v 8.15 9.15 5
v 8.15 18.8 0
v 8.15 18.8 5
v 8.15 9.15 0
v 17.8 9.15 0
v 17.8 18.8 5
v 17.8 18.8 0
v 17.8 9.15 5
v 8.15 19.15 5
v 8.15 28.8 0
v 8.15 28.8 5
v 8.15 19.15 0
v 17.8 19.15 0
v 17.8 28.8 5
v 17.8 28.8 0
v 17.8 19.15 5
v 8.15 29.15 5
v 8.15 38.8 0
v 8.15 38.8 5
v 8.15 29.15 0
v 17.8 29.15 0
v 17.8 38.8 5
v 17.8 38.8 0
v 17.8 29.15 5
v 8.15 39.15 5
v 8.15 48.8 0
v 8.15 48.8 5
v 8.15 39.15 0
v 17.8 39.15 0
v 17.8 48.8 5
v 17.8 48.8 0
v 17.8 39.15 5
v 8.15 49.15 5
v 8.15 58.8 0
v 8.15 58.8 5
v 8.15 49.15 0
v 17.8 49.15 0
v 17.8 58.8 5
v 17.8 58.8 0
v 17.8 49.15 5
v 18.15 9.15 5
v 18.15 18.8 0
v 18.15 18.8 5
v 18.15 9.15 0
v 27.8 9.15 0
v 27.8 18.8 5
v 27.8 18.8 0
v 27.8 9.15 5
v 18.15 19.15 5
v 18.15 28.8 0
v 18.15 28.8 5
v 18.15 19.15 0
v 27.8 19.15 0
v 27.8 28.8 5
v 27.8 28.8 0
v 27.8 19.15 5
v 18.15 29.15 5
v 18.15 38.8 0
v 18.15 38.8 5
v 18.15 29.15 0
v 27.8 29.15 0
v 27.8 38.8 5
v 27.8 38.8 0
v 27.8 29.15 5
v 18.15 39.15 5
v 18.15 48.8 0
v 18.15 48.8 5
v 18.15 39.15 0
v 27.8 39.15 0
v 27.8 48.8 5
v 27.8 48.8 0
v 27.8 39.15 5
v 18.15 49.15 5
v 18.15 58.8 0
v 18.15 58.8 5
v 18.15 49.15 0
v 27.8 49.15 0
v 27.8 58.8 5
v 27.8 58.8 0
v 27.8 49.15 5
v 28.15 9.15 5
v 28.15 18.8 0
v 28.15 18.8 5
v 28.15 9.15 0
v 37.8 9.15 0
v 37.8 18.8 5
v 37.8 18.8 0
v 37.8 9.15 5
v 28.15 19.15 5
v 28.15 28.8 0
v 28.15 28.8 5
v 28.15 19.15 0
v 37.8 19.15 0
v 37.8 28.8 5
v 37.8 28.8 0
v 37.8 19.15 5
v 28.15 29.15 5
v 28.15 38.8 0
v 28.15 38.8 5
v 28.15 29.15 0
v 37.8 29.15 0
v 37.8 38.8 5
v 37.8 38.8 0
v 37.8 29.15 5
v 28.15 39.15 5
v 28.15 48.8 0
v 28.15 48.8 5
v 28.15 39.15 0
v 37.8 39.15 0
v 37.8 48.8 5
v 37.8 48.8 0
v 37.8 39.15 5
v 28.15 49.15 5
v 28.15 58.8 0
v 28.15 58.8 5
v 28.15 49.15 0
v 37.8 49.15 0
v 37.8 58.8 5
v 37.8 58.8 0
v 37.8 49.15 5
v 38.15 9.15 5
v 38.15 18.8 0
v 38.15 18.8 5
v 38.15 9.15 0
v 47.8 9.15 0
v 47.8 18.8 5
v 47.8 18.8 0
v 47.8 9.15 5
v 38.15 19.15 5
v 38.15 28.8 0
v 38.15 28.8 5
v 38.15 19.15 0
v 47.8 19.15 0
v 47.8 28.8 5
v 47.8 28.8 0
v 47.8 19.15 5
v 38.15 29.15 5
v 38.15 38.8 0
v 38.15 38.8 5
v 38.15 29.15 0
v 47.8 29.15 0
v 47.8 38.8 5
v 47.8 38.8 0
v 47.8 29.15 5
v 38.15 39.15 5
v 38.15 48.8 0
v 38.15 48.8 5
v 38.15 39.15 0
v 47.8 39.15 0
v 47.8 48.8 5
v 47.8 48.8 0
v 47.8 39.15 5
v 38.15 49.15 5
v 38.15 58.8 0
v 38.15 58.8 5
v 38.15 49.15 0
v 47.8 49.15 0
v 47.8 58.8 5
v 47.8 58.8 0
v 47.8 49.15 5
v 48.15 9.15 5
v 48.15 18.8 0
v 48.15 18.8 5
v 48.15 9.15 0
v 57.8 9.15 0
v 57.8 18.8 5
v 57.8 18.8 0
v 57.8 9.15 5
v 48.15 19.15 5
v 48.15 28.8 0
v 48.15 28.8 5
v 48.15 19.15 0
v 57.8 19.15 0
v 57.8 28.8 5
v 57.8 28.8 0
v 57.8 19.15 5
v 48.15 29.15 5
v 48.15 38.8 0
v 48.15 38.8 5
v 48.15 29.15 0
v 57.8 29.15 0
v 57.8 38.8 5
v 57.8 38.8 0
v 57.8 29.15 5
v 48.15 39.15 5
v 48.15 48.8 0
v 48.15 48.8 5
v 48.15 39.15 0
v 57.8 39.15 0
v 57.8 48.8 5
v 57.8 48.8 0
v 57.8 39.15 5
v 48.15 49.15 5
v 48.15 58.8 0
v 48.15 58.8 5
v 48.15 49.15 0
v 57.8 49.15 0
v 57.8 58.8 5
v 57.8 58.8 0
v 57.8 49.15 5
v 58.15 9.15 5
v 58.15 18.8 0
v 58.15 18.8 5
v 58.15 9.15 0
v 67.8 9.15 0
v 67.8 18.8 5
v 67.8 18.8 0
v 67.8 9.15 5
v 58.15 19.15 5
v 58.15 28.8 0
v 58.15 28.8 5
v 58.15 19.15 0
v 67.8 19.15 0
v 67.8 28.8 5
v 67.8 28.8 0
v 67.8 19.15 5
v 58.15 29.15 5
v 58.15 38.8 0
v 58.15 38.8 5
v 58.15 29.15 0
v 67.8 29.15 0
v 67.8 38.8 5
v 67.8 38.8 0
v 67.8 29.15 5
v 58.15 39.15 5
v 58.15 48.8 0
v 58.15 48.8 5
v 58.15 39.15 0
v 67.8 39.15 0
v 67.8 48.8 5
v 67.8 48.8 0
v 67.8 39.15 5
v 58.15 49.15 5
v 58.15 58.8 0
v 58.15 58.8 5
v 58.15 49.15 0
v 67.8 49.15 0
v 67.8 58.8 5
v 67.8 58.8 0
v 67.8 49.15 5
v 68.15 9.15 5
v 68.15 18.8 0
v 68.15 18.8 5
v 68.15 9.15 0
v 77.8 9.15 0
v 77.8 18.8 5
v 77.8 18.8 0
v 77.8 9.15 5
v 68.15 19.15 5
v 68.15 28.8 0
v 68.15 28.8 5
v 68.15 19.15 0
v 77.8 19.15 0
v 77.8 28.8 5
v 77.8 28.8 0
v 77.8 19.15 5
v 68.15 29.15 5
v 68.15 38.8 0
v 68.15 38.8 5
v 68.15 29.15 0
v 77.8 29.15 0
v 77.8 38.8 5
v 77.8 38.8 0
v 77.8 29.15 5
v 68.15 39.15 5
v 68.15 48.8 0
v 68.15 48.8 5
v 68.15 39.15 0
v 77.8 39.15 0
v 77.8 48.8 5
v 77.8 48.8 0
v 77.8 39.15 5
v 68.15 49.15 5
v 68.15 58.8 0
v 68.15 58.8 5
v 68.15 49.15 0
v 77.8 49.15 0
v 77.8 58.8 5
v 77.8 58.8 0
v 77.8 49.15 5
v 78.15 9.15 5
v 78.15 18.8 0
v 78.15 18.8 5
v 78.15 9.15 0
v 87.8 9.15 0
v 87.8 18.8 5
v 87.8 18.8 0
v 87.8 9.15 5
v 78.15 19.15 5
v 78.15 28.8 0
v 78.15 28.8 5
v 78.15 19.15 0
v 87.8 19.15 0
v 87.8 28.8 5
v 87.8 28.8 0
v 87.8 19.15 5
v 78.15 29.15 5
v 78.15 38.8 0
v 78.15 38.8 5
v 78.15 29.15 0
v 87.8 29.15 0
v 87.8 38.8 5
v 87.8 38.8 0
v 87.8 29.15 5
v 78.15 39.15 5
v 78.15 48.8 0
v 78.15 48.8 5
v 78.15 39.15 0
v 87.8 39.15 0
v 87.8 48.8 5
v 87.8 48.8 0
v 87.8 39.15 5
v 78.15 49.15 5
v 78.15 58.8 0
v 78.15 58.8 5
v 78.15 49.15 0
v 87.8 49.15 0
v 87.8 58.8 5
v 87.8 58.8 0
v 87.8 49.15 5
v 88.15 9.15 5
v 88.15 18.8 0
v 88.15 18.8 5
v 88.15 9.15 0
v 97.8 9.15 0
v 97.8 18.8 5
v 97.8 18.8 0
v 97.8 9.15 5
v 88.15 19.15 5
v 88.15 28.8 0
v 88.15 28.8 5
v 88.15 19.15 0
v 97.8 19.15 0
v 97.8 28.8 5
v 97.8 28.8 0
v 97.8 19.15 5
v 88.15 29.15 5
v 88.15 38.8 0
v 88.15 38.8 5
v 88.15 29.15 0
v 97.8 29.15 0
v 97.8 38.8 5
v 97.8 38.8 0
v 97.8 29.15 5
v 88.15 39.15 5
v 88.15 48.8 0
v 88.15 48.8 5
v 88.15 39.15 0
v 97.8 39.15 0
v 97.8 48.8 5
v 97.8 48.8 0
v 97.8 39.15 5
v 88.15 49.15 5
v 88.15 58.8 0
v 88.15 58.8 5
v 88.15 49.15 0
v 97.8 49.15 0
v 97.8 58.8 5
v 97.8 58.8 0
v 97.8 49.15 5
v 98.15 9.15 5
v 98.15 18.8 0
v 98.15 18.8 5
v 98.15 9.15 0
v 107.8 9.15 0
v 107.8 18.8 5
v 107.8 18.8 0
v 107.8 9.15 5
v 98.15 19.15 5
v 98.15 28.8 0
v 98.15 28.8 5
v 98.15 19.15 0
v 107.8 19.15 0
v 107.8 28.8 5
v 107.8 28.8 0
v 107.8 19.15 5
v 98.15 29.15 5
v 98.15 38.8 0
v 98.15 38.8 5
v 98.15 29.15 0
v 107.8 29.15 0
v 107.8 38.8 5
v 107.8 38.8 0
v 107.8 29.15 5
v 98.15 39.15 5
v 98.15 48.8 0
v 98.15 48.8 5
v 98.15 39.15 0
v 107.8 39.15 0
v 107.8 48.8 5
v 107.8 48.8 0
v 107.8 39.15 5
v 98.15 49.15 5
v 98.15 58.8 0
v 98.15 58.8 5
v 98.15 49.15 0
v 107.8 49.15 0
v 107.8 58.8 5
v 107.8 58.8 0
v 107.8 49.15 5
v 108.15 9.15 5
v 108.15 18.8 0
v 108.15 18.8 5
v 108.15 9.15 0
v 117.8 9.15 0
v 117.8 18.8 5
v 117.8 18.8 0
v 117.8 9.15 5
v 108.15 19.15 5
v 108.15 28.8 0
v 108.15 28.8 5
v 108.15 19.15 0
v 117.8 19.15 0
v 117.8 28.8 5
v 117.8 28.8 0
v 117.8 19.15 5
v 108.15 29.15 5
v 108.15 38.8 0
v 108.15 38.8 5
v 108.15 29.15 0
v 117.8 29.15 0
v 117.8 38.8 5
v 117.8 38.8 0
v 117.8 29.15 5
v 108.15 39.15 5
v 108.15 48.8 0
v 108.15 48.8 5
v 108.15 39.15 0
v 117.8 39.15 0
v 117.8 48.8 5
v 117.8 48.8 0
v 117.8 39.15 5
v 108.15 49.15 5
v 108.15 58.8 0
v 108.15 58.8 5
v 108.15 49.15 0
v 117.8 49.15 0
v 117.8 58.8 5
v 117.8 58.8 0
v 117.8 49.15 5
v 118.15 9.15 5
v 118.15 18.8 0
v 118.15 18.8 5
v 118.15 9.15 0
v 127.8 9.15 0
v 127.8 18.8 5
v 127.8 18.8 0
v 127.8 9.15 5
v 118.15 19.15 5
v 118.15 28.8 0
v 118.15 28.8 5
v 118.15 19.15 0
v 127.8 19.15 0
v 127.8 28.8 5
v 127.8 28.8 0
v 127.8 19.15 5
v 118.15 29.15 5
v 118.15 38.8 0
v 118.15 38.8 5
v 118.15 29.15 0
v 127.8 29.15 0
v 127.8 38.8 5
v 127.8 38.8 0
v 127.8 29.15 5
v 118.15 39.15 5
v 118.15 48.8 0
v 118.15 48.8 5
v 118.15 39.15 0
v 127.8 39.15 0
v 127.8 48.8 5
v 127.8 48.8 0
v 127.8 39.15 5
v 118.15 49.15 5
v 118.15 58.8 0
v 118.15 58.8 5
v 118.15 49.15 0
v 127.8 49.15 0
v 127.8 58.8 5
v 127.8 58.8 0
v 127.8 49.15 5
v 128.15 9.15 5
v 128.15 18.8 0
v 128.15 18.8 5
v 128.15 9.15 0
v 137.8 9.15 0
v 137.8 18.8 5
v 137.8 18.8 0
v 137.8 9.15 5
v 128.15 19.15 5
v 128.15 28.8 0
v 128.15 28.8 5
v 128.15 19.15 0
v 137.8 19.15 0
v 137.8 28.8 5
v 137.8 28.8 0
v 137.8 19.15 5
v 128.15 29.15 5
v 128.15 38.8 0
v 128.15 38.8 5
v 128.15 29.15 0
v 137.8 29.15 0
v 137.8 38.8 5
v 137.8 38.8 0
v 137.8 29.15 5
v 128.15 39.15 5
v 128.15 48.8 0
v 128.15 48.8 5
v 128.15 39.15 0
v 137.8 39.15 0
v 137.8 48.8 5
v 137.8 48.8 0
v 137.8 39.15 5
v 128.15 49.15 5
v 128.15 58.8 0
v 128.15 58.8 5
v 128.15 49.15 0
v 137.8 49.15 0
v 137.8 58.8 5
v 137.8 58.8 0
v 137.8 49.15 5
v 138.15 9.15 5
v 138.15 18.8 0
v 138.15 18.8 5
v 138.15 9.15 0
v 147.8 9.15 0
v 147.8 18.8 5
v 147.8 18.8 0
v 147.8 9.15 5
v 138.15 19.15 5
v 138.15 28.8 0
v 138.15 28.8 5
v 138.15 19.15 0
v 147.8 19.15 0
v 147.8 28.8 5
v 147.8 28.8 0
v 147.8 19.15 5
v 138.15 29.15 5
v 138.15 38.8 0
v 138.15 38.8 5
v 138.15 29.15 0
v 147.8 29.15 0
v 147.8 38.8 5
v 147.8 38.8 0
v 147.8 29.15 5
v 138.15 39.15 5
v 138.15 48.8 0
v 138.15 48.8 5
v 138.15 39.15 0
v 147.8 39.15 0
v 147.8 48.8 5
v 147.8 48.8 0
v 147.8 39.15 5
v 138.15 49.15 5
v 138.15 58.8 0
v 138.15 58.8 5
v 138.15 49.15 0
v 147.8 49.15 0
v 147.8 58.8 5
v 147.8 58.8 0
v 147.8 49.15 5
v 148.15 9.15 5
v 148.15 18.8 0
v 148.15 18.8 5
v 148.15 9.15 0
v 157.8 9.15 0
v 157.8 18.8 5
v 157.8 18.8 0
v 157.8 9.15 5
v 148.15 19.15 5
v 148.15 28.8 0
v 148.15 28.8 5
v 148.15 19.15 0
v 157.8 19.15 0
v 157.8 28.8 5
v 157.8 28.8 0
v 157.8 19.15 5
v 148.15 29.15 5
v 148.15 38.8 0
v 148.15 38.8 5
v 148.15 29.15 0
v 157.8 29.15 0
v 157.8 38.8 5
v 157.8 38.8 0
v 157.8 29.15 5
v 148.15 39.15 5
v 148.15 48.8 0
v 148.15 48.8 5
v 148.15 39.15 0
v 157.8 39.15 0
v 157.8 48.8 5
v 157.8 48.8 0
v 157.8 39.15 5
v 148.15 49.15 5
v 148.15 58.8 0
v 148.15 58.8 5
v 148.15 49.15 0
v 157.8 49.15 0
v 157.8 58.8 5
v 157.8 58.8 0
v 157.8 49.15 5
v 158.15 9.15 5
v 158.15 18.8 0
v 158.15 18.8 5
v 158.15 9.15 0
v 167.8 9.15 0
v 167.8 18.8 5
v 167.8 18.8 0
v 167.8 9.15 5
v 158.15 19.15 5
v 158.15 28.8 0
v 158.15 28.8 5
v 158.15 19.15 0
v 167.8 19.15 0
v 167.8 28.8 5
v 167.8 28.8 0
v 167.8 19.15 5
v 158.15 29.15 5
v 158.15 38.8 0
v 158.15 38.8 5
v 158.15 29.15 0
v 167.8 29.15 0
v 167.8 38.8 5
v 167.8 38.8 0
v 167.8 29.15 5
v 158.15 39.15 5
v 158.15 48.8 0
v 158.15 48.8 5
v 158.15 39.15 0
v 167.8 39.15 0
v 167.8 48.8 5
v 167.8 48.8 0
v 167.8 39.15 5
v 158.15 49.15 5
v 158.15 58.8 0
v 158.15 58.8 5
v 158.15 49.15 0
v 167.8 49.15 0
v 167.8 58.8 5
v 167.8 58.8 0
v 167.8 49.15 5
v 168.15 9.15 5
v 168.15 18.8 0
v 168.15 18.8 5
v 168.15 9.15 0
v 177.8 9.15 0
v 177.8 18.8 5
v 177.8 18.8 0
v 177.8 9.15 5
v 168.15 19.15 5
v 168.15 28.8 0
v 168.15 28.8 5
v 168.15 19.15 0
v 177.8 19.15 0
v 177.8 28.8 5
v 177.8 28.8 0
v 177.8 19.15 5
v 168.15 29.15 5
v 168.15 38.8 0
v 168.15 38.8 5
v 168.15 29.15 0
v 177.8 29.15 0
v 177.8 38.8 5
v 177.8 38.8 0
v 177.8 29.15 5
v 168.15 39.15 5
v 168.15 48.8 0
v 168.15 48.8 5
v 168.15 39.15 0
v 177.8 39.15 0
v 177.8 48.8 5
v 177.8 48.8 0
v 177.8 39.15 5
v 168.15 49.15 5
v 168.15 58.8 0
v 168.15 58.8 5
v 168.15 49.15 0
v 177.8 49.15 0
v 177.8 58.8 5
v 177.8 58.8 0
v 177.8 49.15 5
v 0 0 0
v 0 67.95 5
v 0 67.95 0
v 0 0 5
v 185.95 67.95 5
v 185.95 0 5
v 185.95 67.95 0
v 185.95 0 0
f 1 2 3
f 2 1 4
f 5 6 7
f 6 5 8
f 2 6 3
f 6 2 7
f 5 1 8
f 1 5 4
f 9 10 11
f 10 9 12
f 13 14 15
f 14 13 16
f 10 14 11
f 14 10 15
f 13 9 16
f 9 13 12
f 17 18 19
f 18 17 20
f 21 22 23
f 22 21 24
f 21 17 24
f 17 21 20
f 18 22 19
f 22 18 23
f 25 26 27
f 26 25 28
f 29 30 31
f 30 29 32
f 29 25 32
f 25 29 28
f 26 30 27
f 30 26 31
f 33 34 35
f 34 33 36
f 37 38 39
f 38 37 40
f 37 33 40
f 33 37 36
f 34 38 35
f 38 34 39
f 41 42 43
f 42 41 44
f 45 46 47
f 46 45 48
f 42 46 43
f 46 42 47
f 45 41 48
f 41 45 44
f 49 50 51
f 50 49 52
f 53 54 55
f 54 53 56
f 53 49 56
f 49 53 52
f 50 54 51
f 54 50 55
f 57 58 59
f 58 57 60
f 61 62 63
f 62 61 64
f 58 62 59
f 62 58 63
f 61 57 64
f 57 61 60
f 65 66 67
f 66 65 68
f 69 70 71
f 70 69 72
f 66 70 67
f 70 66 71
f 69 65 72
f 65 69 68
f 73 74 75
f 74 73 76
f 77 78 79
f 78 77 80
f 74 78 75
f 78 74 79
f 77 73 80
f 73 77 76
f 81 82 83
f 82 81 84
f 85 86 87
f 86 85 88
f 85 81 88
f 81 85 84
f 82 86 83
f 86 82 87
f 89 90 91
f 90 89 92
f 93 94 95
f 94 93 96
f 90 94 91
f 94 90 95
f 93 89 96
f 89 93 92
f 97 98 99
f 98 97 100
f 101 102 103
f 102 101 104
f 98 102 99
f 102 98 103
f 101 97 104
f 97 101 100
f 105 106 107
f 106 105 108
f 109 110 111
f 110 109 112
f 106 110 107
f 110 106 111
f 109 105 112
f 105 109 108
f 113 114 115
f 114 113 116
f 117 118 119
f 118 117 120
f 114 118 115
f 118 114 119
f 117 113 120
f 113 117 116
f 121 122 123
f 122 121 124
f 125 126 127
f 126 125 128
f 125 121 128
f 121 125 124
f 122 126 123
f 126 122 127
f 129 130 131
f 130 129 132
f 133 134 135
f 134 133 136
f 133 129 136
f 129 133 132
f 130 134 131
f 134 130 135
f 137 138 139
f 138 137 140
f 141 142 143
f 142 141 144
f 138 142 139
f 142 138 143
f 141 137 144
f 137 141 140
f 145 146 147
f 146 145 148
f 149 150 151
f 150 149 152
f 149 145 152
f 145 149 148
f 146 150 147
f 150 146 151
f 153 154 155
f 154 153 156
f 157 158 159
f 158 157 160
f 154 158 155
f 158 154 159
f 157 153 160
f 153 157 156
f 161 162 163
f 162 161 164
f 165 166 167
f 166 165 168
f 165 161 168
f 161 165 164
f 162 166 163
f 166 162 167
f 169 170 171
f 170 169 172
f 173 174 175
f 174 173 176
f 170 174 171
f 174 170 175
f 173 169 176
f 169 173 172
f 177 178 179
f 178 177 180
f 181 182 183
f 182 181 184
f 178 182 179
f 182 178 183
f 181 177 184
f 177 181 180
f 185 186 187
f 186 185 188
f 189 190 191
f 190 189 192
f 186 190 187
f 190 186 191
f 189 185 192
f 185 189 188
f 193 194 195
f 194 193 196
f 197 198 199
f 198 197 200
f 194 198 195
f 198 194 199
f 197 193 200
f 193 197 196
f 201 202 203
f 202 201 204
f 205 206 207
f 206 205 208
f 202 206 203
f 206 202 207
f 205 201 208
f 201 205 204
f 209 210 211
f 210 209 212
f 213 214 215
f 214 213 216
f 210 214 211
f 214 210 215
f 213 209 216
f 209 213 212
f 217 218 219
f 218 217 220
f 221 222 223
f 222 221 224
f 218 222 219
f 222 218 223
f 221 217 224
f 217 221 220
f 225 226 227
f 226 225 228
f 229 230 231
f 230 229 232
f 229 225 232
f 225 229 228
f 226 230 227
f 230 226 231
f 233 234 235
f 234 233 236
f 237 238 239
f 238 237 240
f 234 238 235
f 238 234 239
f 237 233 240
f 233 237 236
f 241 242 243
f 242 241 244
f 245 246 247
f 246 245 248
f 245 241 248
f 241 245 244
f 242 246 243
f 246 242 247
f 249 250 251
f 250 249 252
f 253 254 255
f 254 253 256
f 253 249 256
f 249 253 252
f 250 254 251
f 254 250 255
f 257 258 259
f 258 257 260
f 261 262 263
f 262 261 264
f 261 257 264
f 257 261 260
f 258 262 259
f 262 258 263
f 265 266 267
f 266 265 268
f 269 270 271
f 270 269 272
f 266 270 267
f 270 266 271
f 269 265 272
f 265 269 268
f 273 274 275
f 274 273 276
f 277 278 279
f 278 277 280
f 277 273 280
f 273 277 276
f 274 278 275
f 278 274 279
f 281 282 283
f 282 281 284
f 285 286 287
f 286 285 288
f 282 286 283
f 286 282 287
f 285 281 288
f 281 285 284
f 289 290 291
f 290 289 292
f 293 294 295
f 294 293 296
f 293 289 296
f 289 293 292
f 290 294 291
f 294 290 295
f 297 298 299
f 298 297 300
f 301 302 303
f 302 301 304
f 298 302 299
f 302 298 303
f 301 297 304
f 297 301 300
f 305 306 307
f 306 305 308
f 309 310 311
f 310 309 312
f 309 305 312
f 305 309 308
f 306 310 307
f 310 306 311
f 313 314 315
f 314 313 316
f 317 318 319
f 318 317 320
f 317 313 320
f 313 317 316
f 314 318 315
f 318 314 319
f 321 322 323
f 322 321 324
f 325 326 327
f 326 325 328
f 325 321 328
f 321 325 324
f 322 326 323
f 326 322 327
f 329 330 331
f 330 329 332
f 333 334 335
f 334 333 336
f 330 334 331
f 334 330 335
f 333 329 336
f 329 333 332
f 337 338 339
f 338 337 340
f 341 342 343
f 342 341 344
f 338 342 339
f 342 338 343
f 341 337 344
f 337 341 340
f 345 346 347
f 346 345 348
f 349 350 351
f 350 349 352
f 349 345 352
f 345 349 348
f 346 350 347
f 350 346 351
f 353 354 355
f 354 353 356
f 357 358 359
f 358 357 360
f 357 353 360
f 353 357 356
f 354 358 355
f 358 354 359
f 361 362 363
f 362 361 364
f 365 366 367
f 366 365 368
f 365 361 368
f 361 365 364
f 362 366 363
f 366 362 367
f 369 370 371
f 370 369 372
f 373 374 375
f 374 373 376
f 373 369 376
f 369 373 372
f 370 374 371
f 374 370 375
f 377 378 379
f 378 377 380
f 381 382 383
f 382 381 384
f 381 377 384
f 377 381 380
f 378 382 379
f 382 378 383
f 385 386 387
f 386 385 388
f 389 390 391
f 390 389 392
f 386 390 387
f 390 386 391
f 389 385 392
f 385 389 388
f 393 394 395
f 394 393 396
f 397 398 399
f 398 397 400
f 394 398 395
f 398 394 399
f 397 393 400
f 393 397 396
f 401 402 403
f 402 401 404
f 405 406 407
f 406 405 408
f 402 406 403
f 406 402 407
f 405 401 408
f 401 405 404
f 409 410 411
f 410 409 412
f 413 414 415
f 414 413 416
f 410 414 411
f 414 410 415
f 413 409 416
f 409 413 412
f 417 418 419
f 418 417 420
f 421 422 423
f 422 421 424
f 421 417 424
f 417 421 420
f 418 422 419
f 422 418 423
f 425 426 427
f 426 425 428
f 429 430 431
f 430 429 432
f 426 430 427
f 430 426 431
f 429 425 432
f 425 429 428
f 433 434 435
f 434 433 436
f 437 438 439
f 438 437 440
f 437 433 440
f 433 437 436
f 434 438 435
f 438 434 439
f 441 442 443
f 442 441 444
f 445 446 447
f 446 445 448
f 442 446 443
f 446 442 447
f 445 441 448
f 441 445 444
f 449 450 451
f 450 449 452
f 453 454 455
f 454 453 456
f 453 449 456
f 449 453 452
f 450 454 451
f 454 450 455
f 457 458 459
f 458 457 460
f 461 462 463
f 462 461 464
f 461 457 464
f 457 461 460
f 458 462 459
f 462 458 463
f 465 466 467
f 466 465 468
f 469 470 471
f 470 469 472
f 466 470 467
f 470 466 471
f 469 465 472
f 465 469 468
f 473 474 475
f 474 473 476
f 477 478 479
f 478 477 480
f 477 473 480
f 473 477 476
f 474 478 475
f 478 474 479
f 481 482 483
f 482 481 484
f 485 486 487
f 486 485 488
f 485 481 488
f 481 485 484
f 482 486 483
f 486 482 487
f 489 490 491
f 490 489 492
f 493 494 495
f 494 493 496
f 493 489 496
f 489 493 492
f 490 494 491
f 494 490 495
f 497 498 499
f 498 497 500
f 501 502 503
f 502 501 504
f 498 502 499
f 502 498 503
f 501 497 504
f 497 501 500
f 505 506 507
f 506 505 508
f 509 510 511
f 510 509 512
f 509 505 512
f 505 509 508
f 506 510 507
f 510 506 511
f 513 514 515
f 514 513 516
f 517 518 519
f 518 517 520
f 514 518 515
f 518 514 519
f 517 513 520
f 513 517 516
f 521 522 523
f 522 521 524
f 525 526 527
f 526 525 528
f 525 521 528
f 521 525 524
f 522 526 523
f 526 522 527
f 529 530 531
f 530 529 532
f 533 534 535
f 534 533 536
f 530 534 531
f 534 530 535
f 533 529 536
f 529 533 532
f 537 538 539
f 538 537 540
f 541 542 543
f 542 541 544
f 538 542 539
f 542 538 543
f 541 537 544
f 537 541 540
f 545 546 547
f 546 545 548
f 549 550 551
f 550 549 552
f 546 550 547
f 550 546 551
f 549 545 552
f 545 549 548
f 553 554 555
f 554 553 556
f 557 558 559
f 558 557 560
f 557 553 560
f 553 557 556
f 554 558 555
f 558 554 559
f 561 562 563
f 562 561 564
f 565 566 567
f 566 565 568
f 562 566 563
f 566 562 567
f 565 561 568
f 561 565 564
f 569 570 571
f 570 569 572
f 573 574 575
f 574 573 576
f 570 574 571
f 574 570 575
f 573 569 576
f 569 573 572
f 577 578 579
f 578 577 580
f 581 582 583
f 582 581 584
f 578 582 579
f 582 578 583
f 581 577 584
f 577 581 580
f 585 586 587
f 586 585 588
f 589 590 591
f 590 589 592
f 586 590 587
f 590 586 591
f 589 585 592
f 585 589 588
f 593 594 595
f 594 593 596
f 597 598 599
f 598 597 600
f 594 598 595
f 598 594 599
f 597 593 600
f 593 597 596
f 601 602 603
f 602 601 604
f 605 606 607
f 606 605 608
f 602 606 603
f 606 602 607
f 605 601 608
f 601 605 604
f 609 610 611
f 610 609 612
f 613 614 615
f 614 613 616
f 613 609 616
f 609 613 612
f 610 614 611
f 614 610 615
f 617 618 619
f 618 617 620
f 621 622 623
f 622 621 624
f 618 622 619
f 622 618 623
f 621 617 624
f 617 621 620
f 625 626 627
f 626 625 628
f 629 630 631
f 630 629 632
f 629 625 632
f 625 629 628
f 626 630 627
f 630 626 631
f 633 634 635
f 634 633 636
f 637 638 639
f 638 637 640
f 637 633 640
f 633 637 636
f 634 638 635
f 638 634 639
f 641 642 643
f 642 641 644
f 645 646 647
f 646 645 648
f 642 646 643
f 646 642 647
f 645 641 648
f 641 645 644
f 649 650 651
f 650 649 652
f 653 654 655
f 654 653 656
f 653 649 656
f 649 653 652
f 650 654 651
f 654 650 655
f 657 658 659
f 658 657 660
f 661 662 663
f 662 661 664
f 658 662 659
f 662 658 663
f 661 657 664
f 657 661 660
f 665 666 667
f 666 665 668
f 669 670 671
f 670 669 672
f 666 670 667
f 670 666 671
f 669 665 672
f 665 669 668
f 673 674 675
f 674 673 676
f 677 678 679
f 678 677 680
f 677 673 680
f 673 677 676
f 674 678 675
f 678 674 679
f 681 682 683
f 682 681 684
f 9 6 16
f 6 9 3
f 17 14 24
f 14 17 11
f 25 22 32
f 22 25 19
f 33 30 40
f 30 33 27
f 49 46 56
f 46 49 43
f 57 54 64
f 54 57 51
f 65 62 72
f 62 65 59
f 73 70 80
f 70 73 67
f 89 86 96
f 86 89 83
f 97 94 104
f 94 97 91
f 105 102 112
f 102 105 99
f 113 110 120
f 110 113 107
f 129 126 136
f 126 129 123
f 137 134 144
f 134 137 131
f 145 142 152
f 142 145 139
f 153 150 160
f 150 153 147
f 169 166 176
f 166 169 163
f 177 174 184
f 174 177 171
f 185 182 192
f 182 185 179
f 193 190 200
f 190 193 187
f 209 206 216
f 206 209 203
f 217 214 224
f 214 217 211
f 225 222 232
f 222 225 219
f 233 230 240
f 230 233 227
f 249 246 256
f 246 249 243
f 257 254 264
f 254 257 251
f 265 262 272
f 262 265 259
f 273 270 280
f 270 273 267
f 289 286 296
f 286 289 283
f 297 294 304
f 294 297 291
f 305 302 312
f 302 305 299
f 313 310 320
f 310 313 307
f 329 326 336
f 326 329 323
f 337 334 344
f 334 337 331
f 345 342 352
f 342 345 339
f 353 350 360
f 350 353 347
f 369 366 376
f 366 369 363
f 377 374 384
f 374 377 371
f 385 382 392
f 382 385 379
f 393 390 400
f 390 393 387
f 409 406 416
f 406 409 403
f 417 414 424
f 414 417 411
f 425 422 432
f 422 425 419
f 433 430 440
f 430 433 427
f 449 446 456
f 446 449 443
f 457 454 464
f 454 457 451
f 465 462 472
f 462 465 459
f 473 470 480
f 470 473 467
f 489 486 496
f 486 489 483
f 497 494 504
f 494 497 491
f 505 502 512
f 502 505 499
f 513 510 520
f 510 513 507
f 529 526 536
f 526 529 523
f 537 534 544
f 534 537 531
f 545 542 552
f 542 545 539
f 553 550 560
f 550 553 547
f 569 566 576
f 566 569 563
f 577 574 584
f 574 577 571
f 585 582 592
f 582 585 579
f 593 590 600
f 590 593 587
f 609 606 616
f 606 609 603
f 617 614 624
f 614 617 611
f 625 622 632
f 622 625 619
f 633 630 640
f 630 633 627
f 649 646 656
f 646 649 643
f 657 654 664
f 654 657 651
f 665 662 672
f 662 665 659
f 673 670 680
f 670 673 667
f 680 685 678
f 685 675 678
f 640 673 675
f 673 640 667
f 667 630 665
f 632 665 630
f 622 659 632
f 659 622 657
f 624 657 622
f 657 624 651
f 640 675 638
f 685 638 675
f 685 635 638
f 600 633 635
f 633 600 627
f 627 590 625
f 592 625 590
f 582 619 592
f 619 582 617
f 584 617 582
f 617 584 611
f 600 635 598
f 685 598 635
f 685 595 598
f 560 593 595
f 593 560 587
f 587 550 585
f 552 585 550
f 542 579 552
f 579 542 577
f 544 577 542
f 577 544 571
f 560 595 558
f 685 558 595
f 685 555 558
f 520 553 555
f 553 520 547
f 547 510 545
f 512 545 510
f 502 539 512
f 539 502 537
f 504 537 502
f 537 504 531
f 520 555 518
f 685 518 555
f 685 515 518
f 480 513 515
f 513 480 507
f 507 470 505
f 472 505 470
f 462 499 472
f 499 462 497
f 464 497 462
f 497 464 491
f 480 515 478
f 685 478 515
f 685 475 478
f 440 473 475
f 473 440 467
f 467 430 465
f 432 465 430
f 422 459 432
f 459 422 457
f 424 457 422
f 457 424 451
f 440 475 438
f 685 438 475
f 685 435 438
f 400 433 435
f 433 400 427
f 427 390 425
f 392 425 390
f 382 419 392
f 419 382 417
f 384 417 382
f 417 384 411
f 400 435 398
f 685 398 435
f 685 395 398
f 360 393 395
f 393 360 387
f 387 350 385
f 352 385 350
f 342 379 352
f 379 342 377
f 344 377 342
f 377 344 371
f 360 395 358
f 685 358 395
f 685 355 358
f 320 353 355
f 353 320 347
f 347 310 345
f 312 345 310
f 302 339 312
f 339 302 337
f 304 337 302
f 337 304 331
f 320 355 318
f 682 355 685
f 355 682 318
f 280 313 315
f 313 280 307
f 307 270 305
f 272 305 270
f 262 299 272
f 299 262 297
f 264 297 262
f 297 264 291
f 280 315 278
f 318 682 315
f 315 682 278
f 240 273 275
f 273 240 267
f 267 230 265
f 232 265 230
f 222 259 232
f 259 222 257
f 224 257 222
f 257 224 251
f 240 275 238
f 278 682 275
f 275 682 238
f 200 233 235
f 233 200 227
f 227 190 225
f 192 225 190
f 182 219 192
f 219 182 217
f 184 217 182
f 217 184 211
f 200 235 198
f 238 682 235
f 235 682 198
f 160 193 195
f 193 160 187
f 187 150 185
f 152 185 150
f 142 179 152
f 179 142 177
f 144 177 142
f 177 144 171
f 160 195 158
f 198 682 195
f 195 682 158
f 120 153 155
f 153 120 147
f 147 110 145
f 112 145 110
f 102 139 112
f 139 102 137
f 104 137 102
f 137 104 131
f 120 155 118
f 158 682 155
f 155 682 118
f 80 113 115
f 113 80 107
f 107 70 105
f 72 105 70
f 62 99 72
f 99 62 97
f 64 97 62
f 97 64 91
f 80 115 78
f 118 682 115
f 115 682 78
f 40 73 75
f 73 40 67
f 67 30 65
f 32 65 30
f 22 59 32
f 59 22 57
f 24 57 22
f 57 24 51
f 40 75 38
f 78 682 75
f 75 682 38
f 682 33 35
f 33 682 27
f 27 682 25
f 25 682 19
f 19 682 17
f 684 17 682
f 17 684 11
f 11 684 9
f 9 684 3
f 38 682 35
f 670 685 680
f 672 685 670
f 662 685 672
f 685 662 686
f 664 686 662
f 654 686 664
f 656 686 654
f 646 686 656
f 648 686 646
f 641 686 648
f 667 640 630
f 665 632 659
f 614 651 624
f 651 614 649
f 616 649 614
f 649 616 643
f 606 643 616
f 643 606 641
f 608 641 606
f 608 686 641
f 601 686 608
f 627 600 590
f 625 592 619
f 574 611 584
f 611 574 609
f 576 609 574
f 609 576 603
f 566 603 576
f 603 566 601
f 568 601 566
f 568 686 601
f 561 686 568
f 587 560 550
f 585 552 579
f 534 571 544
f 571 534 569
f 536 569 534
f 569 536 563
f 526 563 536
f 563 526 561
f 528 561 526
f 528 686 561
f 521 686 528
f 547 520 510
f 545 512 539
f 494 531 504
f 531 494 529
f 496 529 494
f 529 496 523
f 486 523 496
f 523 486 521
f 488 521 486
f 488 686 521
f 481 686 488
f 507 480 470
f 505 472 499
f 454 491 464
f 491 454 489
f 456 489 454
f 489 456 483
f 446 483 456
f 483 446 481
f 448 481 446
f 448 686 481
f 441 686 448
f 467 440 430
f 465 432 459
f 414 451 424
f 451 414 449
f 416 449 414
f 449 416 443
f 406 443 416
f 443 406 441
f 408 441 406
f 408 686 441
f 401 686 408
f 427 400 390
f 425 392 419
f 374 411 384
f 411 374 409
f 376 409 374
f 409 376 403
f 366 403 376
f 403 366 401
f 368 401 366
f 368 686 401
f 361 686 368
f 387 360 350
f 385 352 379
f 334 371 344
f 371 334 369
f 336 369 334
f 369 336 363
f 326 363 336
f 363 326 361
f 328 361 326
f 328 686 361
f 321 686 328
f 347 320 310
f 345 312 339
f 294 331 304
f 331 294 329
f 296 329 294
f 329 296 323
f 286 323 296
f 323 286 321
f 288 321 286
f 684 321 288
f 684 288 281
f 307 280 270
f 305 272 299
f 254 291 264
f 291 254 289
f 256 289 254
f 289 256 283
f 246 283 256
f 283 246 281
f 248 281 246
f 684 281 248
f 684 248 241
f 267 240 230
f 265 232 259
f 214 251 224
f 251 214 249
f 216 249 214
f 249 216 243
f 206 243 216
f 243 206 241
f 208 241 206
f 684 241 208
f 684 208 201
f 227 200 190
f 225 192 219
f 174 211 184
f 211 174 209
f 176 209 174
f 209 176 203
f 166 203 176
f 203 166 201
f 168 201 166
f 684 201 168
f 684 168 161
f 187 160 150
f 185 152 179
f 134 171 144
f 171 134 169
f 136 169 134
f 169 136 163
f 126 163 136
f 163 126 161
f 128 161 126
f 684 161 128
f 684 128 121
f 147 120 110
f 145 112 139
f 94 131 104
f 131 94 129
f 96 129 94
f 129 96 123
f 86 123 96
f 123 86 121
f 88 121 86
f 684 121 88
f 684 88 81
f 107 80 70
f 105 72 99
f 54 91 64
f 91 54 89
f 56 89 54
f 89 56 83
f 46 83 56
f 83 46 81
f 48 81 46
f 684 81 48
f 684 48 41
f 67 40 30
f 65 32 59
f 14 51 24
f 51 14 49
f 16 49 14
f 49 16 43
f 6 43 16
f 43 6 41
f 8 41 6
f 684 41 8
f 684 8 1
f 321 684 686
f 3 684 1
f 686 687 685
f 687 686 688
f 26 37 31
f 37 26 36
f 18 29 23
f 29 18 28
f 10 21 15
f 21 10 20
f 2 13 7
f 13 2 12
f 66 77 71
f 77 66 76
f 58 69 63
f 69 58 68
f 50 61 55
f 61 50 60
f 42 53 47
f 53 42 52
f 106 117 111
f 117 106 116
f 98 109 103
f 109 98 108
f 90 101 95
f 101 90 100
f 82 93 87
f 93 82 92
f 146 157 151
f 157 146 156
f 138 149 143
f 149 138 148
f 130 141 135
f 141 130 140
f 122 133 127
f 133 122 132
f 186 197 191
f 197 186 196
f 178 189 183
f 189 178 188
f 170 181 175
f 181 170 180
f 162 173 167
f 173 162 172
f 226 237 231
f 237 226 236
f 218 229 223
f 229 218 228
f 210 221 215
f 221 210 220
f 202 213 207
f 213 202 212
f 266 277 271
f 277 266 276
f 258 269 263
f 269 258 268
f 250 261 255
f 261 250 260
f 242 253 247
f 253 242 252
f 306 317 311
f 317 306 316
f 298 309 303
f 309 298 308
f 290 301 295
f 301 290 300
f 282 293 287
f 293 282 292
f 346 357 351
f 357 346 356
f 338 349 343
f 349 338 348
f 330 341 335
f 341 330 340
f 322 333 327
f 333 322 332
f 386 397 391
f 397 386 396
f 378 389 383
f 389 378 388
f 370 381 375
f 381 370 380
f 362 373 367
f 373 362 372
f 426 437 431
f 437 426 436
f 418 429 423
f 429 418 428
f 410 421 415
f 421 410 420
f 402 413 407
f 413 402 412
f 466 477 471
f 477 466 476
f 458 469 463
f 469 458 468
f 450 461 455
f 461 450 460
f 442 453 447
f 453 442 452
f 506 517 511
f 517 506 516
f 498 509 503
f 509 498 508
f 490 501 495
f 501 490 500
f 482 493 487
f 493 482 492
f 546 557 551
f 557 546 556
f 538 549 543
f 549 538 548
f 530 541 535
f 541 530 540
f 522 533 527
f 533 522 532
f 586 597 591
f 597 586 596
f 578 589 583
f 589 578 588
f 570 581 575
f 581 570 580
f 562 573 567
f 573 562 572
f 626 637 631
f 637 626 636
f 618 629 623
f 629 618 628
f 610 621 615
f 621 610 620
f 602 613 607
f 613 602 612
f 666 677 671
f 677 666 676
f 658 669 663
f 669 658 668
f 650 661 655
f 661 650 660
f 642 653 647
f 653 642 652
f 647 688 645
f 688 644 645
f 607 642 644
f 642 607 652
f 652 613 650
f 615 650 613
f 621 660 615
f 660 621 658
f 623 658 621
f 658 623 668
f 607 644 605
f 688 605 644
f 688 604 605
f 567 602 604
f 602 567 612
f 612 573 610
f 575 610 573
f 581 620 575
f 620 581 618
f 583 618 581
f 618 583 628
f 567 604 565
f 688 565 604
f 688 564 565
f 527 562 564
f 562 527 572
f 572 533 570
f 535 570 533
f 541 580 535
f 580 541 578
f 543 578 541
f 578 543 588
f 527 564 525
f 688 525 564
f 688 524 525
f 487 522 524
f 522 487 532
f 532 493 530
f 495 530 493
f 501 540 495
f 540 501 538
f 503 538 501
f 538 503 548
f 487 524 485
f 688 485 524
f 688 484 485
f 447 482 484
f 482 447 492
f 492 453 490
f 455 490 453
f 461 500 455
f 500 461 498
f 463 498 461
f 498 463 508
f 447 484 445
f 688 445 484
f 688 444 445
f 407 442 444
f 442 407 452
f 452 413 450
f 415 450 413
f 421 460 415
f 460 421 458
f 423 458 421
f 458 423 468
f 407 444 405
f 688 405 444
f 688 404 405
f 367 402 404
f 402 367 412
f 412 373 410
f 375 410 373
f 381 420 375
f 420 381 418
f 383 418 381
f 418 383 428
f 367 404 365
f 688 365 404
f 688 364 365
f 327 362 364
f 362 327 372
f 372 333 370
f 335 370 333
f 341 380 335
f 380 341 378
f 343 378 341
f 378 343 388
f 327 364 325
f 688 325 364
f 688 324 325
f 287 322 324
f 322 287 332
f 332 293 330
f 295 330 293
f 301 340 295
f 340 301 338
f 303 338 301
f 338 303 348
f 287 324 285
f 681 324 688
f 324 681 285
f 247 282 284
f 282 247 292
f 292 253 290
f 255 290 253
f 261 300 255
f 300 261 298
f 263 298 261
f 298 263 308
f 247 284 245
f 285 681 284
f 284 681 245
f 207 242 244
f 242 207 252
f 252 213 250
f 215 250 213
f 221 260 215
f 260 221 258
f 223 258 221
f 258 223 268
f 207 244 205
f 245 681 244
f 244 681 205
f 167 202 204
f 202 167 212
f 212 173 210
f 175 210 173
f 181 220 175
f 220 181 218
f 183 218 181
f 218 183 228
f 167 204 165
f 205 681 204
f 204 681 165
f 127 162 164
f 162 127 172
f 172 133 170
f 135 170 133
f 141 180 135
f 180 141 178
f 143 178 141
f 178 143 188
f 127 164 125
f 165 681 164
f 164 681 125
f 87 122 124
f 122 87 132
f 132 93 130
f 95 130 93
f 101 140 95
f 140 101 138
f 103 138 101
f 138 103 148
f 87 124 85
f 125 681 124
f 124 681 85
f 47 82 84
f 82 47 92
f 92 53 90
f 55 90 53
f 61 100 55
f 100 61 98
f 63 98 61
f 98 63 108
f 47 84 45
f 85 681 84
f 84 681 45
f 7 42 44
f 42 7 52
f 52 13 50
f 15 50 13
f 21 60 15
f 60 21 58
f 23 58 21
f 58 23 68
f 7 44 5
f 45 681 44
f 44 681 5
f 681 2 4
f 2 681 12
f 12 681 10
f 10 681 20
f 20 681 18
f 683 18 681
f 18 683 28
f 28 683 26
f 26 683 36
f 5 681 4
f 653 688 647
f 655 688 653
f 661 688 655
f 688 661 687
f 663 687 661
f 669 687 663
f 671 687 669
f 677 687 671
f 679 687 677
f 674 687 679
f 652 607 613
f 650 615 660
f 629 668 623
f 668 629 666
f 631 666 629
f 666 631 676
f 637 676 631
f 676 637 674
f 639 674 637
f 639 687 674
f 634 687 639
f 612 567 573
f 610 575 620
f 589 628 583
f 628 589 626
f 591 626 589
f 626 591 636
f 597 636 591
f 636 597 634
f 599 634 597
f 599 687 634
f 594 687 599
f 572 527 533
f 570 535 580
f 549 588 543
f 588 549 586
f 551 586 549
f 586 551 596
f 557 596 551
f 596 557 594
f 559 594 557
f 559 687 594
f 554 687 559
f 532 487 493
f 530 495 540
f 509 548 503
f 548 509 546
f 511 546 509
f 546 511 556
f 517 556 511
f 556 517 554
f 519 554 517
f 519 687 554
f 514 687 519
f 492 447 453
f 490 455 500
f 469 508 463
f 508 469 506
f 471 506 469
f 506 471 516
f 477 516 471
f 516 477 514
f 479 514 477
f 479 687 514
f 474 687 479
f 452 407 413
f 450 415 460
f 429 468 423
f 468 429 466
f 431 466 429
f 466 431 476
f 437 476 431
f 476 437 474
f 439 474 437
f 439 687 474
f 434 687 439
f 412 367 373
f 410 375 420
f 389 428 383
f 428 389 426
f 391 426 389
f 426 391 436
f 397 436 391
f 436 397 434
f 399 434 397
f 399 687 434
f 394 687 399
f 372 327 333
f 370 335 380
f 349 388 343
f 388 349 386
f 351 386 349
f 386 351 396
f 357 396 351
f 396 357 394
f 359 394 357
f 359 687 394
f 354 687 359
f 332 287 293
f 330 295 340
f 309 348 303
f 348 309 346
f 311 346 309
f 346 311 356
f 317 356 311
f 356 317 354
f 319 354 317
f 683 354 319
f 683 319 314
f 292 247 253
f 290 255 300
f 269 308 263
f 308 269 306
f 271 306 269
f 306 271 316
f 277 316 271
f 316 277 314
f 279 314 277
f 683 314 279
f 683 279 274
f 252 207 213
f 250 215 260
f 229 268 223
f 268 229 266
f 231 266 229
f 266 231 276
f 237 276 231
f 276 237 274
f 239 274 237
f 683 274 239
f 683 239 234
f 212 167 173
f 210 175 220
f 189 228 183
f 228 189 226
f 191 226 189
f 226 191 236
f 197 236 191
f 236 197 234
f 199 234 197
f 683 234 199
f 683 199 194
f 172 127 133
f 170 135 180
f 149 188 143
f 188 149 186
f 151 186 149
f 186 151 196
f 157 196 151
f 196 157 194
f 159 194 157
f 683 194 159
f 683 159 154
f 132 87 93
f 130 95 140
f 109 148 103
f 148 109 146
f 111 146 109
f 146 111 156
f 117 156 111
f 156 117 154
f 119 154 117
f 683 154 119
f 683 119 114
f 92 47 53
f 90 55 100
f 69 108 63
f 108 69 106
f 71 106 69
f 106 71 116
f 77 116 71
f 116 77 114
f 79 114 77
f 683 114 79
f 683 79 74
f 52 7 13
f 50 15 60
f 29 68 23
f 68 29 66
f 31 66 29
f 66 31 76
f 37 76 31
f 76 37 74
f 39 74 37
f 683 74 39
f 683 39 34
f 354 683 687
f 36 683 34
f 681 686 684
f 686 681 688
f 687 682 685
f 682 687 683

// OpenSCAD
cellHorPeriod = 10;
cellVertPeriod = 10;
bordHorThick = 8.8;
bordVertThick = 7.8;
horThick = 0.7;
verThick = 0.7;
horCells = 17;
vertCells = 5;
gridHeight = 5;

difference() {
	cube([horCells*cellHorPeriod+horThick/2+2*bordVertThick,vertCells*cellVertPeriod+verThick/2+2*bordHorThick,gridHeight]);

    for (i = [0:horCells-1]) {
        for (j = [0:vertCells-1]) {
            translate([i*cellHorPeriod + horThick/2 + bordVertThick, j*cellVertPeriod + verThick/2 + bordHorThick, -gridHeight]) {
                cube([cellHorPeriod - horThick/2, cellVertPeriod - verThick/2, gridHeight*3]);
            }
        }
    }

}
